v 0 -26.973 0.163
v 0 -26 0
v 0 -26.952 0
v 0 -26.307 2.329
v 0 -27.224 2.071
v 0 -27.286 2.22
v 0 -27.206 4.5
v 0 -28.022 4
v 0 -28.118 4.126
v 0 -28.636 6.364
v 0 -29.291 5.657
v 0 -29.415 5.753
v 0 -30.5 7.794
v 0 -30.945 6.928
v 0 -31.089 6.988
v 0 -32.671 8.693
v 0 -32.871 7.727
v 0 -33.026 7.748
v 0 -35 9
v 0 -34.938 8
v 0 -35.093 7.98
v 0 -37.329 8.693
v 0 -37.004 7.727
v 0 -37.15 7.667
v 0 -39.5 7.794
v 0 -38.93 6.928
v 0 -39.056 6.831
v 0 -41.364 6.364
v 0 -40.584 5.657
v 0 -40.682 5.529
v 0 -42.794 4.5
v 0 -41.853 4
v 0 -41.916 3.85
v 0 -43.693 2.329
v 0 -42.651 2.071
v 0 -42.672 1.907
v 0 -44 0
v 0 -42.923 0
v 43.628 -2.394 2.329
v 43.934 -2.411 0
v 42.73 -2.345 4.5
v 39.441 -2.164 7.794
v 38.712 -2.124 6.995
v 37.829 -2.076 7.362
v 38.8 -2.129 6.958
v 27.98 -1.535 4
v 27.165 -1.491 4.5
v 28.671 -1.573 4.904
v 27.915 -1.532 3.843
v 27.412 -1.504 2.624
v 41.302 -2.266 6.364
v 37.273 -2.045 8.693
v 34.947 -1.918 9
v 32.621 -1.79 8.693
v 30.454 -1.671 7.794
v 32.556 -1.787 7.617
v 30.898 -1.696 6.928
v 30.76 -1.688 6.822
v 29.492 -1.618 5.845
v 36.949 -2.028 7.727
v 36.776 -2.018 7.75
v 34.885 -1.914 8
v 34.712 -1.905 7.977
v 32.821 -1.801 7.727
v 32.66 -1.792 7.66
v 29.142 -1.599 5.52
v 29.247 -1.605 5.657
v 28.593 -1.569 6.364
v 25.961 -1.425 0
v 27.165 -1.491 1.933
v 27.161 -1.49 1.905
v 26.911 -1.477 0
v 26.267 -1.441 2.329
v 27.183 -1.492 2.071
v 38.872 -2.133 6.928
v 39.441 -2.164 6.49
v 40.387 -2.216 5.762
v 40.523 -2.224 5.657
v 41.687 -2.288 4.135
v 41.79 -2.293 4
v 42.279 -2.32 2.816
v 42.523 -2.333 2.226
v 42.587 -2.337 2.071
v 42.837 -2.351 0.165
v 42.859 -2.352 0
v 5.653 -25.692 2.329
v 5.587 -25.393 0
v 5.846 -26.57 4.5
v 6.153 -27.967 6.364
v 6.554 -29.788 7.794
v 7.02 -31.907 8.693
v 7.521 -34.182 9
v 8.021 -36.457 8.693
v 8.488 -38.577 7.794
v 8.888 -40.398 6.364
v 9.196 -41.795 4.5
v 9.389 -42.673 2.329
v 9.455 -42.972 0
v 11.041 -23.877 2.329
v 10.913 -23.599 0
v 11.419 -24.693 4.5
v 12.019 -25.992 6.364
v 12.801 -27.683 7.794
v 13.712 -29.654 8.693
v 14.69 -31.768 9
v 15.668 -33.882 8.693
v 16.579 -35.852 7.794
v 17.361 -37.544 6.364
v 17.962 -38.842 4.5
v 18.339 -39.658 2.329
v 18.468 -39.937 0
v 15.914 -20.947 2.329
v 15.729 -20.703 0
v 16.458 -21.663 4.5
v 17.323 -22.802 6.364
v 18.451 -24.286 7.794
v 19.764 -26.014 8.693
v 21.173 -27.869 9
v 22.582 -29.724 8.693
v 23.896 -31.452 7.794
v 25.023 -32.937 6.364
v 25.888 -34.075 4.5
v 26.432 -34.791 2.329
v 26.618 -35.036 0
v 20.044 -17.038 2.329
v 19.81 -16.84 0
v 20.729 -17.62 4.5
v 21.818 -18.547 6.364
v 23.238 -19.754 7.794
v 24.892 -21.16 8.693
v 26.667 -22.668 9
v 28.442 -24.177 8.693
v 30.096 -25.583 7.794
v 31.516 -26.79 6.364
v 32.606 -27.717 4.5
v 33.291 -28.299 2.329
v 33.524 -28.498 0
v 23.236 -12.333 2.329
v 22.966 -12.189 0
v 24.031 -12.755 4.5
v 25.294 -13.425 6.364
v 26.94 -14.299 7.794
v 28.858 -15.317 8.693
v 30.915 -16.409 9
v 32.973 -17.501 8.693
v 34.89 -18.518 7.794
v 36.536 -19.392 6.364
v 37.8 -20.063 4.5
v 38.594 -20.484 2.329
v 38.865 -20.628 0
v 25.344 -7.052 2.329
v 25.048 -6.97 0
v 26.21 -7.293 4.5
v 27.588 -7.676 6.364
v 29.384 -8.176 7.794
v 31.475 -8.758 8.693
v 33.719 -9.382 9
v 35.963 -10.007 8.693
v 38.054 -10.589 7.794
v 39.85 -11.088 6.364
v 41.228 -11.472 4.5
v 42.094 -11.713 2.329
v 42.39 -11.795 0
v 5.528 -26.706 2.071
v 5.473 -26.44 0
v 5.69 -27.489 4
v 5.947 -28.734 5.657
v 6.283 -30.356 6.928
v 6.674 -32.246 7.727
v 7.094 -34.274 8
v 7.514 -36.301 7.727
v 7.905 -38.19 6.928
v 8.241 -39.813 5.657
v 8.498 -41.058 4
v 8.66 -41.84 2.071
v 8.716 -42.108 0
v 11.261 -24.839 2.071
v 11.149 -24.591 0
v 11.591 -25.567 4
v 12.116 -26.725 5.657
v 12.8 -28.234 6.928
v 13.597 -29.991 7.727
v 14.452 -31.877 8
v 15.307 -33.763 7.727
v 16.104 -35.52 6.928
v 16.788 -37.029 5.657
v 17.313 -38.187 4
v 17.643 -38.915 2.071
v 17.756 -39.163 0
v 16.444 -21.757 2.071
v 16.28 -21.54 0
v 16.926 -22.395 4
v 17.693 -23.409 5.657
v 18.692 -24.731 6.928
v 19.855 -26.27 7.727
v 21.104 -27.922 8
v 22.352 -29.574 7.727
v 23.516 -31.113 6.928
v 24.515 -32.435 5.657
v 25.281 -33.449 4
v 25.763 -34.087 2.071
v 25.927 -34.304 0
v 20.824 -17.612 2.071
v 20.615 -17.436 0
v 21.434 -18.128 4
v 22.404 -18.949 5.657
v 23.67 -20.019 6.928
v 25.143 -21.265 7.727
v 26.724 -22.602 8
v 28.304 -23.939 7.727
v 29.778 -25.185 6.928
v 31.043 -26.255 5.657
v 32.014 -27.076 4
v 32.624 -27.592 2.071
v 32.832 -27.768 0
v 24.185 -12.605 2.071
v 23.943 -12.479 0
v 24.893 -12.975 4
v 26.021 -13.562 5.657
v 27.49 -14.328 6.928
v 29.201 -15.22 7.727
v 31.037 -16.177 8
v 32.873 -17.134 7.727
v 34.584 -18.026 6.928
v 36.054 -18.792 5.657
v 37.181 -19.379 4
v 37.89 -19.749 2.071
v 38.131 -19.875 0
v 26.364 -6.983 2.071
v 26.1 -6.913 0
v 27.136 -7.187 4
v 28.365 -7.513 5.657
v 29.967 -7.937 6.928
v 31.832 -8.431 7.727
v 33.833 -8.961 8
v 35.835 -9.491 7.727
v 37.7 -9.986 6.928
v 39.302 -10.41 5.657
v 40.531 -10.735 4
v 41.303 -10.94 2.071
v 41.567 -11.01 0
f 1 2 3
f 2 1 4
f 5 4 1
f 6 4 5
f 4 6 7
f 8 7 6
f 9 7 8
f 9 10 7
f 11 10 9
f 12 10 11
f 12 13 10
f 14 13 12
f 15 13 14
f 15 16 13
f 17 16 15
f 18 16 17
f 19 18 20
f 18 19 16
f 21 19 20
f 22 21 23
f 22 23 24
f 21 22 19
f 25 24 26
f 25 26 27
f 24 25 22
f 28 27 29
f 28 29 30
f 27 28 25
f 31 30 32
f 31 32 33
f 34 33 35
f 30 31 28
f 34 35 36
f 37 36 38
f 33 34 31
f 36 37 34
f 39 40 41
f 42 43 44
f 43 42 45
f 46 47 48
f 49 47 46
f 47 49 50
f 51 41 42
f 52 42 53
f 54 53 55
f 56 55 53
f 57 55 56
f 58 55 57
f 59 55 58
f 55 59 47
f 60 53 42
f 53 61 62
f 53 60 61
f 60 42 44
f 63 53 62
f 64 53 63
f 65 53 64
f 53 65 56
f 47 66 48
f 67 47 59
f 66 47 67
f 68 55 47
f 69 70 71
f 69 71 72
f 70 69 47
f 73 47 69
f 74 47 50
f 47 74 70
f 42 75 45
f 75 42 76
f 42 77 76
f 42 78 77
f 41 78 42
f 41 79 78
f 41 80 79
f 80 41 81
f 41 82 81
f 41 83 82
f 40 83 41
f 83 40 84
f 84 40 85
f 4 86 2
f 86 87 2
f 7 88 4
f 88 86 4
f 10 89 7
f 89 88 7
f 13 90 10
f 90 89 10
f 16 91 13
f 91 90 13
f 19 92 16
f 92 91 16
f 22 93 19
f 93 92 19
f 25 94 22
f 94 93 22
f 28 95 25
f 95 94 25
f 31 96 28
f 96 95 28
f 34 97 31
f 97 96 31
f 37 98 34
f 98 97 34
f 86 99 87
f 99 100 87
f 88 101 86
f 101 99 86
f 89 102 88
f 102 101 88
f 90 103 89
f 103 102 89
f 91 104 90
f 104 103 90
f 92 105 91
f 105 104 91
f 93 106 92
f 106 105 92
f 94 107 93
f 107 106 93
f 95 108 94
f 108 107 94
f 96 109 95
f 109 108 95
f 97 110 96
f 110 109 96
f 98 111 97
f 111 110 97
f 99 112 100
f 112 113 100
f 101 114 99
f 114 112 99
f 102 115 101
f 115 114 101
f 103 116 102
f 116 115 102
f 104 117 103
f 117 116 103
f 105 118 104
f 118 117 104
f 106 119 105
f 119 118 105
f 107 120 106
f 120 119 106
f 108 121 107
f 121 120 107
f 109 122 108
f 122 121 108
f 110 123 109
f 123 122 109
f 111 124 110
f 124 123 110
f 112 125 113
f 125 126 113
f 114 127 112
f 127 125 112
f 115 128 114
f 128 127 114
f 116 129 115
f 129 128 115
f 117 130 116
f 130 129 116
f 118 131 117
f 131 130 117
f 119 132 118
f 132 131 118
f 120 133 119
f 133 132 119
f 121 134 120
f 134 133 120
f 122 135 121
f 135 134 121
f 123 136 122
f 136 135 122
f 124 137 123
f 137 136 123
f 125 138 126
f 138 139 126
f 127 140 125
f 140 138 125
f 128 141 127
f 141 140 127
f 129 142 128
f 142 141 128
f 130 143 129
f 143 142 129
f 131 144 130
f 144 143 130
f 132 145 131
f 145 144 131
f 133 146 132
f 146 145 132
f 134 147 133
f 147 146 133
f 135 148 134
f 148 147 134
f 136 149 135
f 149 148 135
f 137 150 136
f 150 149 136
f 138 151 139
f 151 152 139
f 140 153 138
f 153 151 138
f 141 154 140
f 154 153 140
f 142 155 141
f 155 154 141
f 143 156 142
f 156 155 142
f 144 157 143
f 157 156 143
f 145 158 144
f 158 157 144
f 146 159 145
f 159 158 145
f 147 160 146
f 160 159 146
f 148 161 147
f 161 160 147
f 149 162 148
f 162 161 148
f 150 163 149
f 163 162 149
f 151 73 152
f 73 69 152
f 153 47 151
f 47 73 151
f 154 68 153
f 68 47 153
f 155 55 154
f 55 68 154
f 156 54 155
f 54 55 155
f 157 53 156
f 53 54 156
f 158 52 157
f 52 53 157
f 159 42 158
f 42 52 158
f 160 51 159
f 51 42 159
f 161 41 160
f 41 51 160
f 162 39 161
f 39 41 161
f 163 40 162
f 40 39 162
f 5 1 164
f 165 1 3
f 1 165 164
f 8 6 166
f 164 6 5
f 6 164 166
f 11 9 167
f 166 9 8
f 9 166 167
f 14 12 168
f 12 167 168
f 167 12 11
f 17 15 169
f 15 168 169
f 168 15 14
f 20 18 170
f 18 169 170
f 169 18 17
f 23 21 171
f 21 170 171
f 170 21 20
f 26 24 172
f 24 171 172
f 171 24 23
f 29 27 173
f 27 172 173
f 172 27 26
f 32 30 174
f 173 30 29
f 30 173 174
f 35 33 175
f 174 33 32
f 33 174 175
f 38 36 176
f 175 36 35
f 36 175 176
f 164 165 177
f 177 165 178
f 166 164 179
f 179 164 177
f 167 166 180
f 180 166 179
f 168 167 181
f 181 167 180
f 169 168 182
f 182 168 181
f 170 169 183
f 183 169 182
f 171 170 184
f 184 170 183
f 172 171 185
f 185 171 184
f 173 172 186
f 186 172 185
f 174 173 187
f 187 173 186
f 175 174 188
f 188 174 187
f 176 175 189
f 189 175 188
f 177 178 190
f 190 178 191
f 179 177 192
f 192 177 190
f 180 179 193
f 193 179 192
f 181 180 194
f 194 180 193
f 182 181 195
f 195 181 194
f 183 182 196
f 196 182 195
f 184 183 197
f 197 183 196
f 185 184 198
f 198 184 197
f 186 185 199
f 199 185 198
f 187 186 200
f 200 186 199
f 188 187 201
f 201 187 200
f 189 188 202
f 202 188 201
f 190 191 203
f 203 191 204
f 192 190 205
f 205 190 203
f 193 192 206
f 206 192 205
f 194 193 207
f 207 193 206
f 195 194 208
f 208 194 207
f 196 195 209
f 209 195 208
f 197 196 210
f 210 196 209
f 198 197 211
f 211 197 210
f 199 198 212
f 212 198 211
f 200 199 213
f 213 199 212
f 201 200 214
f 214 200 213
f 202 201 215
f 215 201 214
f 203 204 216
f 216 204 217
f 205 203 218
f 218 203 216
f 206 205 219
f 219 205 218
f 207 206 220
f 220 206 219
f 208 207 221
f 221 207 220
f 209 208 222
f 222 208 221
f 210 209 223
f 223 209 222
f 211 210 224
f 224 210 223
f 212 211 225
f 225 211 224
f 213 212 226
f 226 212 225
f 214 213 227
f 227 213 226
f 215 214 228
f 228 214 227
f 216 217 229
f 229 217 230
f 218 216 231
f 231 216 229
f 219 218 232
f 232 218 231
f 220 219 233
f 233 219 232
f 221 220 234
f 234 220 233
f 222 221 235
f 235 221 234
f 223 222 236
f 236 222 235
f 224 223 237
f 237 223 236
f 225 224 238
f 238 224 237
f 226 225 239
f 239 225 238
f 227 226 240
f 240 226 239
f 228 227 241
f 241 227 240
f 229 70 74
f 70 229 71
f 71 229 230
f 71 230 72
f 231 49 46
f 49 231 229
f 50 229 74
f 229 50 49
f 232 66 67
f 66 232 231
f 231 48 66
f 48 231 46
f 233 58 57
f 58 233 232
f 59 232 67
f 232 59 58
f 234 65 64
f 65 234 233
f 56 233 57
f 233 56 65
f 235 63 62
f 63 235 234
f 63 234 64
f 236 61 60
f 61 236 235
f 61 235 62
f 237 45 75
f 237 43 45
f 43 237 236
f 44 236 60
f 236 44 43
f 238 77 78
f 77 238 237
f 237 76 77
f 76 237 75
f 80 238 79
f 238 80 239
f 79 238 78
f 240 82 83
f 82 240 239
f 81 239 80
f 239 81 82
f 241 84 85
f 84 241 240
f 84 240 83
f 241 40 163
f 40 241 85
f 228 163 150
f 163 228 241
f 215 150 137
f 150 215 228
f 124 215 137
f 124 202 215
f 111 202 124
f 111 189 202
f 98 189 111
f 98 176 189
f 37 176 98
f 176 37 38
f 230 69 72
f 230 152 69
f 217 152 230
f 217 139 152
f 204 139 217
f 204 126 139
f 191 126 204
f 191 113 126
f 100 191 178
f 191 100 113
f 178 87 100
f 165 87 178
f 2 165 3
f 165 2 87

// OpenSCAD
// file: ../build_environments.scad
// build_environments.scad: modules to build level sections
//

module pool(diameter=10.0, wall_height=2.0, step_width=3.0, connections=[])
{
    difference() {
        union() {
        difference() {
            cylinder(h=0.5,r1=diameter+step_width,r2=diameter+step_width,$fn=48);
            translate([0,0,-0.1])
                cylinder(h=0.7,r1=diameter,r2=diameter,$fn=48);
        }
        difference() {
            cylinder(h=wall_height,r1=diameter+step_width+1.0,r2=diameter+step_width+1.0,$fn=48);
            translate([0,0,-0.1])
                cylinder(h=wall_height+0.2,r1=diameter+step_width,r2=diameter+step_width,$fn=48);
        }
        }
    
        for (c = connections)
        {
            rotate([0,90,0]) {
                angle = atan2(c[1],c[0]);
                rotate([-angle,0,0]) {
                    cylinder(h=diameter+5.0,r1=c[2],r2=c[2],$fn=48);
                }
            }
        }
    }
}

module straight(length=10.0, width=2.0, dy1=0.0, dy2=0.0, dz=0.0)
{
    dims = [0, 0, 0, 0, 0, (dz/length)];
    matrix = [
        [ 1, dims[0], dims[1], 0 ],
        [ dims[2], 1, dims[4], 0 ],
        [ dims[5], dims[3], 1, 0 ],
        [ 0, 0, 0, 1 ]
    ];
    multmatrix(matrix)
    difference() {
        translate([dy1,0,0])
        union() {
            rotate([0,90,0]) {
                difference() {
                    cylinder(h=(length-dy1-dy2),r1=width+1.0,r2=width+1.0,$fn=24);
                    translate([0,0,-0.1])
                        cylinder(h=(length-dy1-dy2+0.2),r1=width,r2=width,$fn=24);
                }
                difference() {
                    cylinder(h=1.0,r1=width+2.0,r2=width+2.0,$fn=24);
                    translate([0,0,-0.1])
                        cylinder(h=1.2,r1=width,r2=width,$fn=24);
                }
                translate([0,0,(length-dy1-dy2)-1.0]) {
                    difference() {
                        cylinder(h=1.0,r1=width+2.0,r2=width+2.0,$fn=24);
                        translate([0,0,-0.1])
                            cylinder(h=1.2,r1=width,r2=width,$fn=24);
                    }
                }
            }
        }
        translate([0,0,-(2*width+4.0)/2])
            cube([3*length,3*length,2*width+4.0],center=true);
    }
}

module curve(p0=[0,0], center=[0,0], dir=1, angle=0.0, width=2.0)
{
    radius = sqrt((p0[0]-center[0])*(p0[0]-center[0]) + (p0[1]-center[1])*(p0[1]-center[1]));
    if (dir == 0) {
        difference() {
            rotate([0,0,-90])
            difference() {
                rotate_extrude(angle = angle, convexity = 10, $fn=32)
                    translate([radius, 0, 0])
                        circle(r = width+1.0,$fn=24);
                rotate([0,0,-1.0])
                    rotate_extrude(angle = angle+2.0, convexity = 10, $fn=32)
                        translate([radius, 0, 0])
                            circle(r = width,$fn=24);
            }
            translate([0,0,-(2*width+4.0)/2])
                cube([5*radius,5*radius,2*width+4.0],center=true);
        }
    }
    else {
        difference() {
            rotate([0,0,90])
            difference() {
                rotate_extrude(angle = -angle, convexity = 10, $fn=32)
                    translate([radius, 0, 0])
                        circle(r = width+1.0,$fn=24);
                rotate([0,0,1.0])
                    rotate_extrude(angle = -angle-2.0, convexity = 10, $fn=32)
                        translate([radius, 0, 0])
                            circle(r = width,$fn=24);
            }
            translate([0,0,-(2*width+4.0)/2])
                cube([5*radius,5*radius,2*width+4.0],center=true);
        }
    }

}

// test pool
//pool(diameter=12.0000, wall_height=3.0000, step_width=3.0000, connections=[[0.0000,-26.0000,2.0000], [23.6074,0.0000,2.0000]]);

// test straight, slope
//straight(length=26.0000, width=2.0000, dy1=11.8322, dy2=6.7082, dz=0.0000);
//straight(length=29.1549, width=12.0000, dy1=0.0000, dy2=0.0000, dz=-15.0000);

// test curve
//curve(p0=[23.6074, 0.0000], center=[23.6074, 5.0000], dir=0, angle=60.1011, width=2.0000);
//curve(p0=[33.6426, 12.4219], center=[37.9771, 9.9295], dir=1, angle=120.4627, width=2.0000);
// main file
use <../build_environments.scad>;
curve(p0=[57.9917, 179.3710], center=[49.9326, 145.3115], dir=0, angle=86.8590, width=8.0000);
